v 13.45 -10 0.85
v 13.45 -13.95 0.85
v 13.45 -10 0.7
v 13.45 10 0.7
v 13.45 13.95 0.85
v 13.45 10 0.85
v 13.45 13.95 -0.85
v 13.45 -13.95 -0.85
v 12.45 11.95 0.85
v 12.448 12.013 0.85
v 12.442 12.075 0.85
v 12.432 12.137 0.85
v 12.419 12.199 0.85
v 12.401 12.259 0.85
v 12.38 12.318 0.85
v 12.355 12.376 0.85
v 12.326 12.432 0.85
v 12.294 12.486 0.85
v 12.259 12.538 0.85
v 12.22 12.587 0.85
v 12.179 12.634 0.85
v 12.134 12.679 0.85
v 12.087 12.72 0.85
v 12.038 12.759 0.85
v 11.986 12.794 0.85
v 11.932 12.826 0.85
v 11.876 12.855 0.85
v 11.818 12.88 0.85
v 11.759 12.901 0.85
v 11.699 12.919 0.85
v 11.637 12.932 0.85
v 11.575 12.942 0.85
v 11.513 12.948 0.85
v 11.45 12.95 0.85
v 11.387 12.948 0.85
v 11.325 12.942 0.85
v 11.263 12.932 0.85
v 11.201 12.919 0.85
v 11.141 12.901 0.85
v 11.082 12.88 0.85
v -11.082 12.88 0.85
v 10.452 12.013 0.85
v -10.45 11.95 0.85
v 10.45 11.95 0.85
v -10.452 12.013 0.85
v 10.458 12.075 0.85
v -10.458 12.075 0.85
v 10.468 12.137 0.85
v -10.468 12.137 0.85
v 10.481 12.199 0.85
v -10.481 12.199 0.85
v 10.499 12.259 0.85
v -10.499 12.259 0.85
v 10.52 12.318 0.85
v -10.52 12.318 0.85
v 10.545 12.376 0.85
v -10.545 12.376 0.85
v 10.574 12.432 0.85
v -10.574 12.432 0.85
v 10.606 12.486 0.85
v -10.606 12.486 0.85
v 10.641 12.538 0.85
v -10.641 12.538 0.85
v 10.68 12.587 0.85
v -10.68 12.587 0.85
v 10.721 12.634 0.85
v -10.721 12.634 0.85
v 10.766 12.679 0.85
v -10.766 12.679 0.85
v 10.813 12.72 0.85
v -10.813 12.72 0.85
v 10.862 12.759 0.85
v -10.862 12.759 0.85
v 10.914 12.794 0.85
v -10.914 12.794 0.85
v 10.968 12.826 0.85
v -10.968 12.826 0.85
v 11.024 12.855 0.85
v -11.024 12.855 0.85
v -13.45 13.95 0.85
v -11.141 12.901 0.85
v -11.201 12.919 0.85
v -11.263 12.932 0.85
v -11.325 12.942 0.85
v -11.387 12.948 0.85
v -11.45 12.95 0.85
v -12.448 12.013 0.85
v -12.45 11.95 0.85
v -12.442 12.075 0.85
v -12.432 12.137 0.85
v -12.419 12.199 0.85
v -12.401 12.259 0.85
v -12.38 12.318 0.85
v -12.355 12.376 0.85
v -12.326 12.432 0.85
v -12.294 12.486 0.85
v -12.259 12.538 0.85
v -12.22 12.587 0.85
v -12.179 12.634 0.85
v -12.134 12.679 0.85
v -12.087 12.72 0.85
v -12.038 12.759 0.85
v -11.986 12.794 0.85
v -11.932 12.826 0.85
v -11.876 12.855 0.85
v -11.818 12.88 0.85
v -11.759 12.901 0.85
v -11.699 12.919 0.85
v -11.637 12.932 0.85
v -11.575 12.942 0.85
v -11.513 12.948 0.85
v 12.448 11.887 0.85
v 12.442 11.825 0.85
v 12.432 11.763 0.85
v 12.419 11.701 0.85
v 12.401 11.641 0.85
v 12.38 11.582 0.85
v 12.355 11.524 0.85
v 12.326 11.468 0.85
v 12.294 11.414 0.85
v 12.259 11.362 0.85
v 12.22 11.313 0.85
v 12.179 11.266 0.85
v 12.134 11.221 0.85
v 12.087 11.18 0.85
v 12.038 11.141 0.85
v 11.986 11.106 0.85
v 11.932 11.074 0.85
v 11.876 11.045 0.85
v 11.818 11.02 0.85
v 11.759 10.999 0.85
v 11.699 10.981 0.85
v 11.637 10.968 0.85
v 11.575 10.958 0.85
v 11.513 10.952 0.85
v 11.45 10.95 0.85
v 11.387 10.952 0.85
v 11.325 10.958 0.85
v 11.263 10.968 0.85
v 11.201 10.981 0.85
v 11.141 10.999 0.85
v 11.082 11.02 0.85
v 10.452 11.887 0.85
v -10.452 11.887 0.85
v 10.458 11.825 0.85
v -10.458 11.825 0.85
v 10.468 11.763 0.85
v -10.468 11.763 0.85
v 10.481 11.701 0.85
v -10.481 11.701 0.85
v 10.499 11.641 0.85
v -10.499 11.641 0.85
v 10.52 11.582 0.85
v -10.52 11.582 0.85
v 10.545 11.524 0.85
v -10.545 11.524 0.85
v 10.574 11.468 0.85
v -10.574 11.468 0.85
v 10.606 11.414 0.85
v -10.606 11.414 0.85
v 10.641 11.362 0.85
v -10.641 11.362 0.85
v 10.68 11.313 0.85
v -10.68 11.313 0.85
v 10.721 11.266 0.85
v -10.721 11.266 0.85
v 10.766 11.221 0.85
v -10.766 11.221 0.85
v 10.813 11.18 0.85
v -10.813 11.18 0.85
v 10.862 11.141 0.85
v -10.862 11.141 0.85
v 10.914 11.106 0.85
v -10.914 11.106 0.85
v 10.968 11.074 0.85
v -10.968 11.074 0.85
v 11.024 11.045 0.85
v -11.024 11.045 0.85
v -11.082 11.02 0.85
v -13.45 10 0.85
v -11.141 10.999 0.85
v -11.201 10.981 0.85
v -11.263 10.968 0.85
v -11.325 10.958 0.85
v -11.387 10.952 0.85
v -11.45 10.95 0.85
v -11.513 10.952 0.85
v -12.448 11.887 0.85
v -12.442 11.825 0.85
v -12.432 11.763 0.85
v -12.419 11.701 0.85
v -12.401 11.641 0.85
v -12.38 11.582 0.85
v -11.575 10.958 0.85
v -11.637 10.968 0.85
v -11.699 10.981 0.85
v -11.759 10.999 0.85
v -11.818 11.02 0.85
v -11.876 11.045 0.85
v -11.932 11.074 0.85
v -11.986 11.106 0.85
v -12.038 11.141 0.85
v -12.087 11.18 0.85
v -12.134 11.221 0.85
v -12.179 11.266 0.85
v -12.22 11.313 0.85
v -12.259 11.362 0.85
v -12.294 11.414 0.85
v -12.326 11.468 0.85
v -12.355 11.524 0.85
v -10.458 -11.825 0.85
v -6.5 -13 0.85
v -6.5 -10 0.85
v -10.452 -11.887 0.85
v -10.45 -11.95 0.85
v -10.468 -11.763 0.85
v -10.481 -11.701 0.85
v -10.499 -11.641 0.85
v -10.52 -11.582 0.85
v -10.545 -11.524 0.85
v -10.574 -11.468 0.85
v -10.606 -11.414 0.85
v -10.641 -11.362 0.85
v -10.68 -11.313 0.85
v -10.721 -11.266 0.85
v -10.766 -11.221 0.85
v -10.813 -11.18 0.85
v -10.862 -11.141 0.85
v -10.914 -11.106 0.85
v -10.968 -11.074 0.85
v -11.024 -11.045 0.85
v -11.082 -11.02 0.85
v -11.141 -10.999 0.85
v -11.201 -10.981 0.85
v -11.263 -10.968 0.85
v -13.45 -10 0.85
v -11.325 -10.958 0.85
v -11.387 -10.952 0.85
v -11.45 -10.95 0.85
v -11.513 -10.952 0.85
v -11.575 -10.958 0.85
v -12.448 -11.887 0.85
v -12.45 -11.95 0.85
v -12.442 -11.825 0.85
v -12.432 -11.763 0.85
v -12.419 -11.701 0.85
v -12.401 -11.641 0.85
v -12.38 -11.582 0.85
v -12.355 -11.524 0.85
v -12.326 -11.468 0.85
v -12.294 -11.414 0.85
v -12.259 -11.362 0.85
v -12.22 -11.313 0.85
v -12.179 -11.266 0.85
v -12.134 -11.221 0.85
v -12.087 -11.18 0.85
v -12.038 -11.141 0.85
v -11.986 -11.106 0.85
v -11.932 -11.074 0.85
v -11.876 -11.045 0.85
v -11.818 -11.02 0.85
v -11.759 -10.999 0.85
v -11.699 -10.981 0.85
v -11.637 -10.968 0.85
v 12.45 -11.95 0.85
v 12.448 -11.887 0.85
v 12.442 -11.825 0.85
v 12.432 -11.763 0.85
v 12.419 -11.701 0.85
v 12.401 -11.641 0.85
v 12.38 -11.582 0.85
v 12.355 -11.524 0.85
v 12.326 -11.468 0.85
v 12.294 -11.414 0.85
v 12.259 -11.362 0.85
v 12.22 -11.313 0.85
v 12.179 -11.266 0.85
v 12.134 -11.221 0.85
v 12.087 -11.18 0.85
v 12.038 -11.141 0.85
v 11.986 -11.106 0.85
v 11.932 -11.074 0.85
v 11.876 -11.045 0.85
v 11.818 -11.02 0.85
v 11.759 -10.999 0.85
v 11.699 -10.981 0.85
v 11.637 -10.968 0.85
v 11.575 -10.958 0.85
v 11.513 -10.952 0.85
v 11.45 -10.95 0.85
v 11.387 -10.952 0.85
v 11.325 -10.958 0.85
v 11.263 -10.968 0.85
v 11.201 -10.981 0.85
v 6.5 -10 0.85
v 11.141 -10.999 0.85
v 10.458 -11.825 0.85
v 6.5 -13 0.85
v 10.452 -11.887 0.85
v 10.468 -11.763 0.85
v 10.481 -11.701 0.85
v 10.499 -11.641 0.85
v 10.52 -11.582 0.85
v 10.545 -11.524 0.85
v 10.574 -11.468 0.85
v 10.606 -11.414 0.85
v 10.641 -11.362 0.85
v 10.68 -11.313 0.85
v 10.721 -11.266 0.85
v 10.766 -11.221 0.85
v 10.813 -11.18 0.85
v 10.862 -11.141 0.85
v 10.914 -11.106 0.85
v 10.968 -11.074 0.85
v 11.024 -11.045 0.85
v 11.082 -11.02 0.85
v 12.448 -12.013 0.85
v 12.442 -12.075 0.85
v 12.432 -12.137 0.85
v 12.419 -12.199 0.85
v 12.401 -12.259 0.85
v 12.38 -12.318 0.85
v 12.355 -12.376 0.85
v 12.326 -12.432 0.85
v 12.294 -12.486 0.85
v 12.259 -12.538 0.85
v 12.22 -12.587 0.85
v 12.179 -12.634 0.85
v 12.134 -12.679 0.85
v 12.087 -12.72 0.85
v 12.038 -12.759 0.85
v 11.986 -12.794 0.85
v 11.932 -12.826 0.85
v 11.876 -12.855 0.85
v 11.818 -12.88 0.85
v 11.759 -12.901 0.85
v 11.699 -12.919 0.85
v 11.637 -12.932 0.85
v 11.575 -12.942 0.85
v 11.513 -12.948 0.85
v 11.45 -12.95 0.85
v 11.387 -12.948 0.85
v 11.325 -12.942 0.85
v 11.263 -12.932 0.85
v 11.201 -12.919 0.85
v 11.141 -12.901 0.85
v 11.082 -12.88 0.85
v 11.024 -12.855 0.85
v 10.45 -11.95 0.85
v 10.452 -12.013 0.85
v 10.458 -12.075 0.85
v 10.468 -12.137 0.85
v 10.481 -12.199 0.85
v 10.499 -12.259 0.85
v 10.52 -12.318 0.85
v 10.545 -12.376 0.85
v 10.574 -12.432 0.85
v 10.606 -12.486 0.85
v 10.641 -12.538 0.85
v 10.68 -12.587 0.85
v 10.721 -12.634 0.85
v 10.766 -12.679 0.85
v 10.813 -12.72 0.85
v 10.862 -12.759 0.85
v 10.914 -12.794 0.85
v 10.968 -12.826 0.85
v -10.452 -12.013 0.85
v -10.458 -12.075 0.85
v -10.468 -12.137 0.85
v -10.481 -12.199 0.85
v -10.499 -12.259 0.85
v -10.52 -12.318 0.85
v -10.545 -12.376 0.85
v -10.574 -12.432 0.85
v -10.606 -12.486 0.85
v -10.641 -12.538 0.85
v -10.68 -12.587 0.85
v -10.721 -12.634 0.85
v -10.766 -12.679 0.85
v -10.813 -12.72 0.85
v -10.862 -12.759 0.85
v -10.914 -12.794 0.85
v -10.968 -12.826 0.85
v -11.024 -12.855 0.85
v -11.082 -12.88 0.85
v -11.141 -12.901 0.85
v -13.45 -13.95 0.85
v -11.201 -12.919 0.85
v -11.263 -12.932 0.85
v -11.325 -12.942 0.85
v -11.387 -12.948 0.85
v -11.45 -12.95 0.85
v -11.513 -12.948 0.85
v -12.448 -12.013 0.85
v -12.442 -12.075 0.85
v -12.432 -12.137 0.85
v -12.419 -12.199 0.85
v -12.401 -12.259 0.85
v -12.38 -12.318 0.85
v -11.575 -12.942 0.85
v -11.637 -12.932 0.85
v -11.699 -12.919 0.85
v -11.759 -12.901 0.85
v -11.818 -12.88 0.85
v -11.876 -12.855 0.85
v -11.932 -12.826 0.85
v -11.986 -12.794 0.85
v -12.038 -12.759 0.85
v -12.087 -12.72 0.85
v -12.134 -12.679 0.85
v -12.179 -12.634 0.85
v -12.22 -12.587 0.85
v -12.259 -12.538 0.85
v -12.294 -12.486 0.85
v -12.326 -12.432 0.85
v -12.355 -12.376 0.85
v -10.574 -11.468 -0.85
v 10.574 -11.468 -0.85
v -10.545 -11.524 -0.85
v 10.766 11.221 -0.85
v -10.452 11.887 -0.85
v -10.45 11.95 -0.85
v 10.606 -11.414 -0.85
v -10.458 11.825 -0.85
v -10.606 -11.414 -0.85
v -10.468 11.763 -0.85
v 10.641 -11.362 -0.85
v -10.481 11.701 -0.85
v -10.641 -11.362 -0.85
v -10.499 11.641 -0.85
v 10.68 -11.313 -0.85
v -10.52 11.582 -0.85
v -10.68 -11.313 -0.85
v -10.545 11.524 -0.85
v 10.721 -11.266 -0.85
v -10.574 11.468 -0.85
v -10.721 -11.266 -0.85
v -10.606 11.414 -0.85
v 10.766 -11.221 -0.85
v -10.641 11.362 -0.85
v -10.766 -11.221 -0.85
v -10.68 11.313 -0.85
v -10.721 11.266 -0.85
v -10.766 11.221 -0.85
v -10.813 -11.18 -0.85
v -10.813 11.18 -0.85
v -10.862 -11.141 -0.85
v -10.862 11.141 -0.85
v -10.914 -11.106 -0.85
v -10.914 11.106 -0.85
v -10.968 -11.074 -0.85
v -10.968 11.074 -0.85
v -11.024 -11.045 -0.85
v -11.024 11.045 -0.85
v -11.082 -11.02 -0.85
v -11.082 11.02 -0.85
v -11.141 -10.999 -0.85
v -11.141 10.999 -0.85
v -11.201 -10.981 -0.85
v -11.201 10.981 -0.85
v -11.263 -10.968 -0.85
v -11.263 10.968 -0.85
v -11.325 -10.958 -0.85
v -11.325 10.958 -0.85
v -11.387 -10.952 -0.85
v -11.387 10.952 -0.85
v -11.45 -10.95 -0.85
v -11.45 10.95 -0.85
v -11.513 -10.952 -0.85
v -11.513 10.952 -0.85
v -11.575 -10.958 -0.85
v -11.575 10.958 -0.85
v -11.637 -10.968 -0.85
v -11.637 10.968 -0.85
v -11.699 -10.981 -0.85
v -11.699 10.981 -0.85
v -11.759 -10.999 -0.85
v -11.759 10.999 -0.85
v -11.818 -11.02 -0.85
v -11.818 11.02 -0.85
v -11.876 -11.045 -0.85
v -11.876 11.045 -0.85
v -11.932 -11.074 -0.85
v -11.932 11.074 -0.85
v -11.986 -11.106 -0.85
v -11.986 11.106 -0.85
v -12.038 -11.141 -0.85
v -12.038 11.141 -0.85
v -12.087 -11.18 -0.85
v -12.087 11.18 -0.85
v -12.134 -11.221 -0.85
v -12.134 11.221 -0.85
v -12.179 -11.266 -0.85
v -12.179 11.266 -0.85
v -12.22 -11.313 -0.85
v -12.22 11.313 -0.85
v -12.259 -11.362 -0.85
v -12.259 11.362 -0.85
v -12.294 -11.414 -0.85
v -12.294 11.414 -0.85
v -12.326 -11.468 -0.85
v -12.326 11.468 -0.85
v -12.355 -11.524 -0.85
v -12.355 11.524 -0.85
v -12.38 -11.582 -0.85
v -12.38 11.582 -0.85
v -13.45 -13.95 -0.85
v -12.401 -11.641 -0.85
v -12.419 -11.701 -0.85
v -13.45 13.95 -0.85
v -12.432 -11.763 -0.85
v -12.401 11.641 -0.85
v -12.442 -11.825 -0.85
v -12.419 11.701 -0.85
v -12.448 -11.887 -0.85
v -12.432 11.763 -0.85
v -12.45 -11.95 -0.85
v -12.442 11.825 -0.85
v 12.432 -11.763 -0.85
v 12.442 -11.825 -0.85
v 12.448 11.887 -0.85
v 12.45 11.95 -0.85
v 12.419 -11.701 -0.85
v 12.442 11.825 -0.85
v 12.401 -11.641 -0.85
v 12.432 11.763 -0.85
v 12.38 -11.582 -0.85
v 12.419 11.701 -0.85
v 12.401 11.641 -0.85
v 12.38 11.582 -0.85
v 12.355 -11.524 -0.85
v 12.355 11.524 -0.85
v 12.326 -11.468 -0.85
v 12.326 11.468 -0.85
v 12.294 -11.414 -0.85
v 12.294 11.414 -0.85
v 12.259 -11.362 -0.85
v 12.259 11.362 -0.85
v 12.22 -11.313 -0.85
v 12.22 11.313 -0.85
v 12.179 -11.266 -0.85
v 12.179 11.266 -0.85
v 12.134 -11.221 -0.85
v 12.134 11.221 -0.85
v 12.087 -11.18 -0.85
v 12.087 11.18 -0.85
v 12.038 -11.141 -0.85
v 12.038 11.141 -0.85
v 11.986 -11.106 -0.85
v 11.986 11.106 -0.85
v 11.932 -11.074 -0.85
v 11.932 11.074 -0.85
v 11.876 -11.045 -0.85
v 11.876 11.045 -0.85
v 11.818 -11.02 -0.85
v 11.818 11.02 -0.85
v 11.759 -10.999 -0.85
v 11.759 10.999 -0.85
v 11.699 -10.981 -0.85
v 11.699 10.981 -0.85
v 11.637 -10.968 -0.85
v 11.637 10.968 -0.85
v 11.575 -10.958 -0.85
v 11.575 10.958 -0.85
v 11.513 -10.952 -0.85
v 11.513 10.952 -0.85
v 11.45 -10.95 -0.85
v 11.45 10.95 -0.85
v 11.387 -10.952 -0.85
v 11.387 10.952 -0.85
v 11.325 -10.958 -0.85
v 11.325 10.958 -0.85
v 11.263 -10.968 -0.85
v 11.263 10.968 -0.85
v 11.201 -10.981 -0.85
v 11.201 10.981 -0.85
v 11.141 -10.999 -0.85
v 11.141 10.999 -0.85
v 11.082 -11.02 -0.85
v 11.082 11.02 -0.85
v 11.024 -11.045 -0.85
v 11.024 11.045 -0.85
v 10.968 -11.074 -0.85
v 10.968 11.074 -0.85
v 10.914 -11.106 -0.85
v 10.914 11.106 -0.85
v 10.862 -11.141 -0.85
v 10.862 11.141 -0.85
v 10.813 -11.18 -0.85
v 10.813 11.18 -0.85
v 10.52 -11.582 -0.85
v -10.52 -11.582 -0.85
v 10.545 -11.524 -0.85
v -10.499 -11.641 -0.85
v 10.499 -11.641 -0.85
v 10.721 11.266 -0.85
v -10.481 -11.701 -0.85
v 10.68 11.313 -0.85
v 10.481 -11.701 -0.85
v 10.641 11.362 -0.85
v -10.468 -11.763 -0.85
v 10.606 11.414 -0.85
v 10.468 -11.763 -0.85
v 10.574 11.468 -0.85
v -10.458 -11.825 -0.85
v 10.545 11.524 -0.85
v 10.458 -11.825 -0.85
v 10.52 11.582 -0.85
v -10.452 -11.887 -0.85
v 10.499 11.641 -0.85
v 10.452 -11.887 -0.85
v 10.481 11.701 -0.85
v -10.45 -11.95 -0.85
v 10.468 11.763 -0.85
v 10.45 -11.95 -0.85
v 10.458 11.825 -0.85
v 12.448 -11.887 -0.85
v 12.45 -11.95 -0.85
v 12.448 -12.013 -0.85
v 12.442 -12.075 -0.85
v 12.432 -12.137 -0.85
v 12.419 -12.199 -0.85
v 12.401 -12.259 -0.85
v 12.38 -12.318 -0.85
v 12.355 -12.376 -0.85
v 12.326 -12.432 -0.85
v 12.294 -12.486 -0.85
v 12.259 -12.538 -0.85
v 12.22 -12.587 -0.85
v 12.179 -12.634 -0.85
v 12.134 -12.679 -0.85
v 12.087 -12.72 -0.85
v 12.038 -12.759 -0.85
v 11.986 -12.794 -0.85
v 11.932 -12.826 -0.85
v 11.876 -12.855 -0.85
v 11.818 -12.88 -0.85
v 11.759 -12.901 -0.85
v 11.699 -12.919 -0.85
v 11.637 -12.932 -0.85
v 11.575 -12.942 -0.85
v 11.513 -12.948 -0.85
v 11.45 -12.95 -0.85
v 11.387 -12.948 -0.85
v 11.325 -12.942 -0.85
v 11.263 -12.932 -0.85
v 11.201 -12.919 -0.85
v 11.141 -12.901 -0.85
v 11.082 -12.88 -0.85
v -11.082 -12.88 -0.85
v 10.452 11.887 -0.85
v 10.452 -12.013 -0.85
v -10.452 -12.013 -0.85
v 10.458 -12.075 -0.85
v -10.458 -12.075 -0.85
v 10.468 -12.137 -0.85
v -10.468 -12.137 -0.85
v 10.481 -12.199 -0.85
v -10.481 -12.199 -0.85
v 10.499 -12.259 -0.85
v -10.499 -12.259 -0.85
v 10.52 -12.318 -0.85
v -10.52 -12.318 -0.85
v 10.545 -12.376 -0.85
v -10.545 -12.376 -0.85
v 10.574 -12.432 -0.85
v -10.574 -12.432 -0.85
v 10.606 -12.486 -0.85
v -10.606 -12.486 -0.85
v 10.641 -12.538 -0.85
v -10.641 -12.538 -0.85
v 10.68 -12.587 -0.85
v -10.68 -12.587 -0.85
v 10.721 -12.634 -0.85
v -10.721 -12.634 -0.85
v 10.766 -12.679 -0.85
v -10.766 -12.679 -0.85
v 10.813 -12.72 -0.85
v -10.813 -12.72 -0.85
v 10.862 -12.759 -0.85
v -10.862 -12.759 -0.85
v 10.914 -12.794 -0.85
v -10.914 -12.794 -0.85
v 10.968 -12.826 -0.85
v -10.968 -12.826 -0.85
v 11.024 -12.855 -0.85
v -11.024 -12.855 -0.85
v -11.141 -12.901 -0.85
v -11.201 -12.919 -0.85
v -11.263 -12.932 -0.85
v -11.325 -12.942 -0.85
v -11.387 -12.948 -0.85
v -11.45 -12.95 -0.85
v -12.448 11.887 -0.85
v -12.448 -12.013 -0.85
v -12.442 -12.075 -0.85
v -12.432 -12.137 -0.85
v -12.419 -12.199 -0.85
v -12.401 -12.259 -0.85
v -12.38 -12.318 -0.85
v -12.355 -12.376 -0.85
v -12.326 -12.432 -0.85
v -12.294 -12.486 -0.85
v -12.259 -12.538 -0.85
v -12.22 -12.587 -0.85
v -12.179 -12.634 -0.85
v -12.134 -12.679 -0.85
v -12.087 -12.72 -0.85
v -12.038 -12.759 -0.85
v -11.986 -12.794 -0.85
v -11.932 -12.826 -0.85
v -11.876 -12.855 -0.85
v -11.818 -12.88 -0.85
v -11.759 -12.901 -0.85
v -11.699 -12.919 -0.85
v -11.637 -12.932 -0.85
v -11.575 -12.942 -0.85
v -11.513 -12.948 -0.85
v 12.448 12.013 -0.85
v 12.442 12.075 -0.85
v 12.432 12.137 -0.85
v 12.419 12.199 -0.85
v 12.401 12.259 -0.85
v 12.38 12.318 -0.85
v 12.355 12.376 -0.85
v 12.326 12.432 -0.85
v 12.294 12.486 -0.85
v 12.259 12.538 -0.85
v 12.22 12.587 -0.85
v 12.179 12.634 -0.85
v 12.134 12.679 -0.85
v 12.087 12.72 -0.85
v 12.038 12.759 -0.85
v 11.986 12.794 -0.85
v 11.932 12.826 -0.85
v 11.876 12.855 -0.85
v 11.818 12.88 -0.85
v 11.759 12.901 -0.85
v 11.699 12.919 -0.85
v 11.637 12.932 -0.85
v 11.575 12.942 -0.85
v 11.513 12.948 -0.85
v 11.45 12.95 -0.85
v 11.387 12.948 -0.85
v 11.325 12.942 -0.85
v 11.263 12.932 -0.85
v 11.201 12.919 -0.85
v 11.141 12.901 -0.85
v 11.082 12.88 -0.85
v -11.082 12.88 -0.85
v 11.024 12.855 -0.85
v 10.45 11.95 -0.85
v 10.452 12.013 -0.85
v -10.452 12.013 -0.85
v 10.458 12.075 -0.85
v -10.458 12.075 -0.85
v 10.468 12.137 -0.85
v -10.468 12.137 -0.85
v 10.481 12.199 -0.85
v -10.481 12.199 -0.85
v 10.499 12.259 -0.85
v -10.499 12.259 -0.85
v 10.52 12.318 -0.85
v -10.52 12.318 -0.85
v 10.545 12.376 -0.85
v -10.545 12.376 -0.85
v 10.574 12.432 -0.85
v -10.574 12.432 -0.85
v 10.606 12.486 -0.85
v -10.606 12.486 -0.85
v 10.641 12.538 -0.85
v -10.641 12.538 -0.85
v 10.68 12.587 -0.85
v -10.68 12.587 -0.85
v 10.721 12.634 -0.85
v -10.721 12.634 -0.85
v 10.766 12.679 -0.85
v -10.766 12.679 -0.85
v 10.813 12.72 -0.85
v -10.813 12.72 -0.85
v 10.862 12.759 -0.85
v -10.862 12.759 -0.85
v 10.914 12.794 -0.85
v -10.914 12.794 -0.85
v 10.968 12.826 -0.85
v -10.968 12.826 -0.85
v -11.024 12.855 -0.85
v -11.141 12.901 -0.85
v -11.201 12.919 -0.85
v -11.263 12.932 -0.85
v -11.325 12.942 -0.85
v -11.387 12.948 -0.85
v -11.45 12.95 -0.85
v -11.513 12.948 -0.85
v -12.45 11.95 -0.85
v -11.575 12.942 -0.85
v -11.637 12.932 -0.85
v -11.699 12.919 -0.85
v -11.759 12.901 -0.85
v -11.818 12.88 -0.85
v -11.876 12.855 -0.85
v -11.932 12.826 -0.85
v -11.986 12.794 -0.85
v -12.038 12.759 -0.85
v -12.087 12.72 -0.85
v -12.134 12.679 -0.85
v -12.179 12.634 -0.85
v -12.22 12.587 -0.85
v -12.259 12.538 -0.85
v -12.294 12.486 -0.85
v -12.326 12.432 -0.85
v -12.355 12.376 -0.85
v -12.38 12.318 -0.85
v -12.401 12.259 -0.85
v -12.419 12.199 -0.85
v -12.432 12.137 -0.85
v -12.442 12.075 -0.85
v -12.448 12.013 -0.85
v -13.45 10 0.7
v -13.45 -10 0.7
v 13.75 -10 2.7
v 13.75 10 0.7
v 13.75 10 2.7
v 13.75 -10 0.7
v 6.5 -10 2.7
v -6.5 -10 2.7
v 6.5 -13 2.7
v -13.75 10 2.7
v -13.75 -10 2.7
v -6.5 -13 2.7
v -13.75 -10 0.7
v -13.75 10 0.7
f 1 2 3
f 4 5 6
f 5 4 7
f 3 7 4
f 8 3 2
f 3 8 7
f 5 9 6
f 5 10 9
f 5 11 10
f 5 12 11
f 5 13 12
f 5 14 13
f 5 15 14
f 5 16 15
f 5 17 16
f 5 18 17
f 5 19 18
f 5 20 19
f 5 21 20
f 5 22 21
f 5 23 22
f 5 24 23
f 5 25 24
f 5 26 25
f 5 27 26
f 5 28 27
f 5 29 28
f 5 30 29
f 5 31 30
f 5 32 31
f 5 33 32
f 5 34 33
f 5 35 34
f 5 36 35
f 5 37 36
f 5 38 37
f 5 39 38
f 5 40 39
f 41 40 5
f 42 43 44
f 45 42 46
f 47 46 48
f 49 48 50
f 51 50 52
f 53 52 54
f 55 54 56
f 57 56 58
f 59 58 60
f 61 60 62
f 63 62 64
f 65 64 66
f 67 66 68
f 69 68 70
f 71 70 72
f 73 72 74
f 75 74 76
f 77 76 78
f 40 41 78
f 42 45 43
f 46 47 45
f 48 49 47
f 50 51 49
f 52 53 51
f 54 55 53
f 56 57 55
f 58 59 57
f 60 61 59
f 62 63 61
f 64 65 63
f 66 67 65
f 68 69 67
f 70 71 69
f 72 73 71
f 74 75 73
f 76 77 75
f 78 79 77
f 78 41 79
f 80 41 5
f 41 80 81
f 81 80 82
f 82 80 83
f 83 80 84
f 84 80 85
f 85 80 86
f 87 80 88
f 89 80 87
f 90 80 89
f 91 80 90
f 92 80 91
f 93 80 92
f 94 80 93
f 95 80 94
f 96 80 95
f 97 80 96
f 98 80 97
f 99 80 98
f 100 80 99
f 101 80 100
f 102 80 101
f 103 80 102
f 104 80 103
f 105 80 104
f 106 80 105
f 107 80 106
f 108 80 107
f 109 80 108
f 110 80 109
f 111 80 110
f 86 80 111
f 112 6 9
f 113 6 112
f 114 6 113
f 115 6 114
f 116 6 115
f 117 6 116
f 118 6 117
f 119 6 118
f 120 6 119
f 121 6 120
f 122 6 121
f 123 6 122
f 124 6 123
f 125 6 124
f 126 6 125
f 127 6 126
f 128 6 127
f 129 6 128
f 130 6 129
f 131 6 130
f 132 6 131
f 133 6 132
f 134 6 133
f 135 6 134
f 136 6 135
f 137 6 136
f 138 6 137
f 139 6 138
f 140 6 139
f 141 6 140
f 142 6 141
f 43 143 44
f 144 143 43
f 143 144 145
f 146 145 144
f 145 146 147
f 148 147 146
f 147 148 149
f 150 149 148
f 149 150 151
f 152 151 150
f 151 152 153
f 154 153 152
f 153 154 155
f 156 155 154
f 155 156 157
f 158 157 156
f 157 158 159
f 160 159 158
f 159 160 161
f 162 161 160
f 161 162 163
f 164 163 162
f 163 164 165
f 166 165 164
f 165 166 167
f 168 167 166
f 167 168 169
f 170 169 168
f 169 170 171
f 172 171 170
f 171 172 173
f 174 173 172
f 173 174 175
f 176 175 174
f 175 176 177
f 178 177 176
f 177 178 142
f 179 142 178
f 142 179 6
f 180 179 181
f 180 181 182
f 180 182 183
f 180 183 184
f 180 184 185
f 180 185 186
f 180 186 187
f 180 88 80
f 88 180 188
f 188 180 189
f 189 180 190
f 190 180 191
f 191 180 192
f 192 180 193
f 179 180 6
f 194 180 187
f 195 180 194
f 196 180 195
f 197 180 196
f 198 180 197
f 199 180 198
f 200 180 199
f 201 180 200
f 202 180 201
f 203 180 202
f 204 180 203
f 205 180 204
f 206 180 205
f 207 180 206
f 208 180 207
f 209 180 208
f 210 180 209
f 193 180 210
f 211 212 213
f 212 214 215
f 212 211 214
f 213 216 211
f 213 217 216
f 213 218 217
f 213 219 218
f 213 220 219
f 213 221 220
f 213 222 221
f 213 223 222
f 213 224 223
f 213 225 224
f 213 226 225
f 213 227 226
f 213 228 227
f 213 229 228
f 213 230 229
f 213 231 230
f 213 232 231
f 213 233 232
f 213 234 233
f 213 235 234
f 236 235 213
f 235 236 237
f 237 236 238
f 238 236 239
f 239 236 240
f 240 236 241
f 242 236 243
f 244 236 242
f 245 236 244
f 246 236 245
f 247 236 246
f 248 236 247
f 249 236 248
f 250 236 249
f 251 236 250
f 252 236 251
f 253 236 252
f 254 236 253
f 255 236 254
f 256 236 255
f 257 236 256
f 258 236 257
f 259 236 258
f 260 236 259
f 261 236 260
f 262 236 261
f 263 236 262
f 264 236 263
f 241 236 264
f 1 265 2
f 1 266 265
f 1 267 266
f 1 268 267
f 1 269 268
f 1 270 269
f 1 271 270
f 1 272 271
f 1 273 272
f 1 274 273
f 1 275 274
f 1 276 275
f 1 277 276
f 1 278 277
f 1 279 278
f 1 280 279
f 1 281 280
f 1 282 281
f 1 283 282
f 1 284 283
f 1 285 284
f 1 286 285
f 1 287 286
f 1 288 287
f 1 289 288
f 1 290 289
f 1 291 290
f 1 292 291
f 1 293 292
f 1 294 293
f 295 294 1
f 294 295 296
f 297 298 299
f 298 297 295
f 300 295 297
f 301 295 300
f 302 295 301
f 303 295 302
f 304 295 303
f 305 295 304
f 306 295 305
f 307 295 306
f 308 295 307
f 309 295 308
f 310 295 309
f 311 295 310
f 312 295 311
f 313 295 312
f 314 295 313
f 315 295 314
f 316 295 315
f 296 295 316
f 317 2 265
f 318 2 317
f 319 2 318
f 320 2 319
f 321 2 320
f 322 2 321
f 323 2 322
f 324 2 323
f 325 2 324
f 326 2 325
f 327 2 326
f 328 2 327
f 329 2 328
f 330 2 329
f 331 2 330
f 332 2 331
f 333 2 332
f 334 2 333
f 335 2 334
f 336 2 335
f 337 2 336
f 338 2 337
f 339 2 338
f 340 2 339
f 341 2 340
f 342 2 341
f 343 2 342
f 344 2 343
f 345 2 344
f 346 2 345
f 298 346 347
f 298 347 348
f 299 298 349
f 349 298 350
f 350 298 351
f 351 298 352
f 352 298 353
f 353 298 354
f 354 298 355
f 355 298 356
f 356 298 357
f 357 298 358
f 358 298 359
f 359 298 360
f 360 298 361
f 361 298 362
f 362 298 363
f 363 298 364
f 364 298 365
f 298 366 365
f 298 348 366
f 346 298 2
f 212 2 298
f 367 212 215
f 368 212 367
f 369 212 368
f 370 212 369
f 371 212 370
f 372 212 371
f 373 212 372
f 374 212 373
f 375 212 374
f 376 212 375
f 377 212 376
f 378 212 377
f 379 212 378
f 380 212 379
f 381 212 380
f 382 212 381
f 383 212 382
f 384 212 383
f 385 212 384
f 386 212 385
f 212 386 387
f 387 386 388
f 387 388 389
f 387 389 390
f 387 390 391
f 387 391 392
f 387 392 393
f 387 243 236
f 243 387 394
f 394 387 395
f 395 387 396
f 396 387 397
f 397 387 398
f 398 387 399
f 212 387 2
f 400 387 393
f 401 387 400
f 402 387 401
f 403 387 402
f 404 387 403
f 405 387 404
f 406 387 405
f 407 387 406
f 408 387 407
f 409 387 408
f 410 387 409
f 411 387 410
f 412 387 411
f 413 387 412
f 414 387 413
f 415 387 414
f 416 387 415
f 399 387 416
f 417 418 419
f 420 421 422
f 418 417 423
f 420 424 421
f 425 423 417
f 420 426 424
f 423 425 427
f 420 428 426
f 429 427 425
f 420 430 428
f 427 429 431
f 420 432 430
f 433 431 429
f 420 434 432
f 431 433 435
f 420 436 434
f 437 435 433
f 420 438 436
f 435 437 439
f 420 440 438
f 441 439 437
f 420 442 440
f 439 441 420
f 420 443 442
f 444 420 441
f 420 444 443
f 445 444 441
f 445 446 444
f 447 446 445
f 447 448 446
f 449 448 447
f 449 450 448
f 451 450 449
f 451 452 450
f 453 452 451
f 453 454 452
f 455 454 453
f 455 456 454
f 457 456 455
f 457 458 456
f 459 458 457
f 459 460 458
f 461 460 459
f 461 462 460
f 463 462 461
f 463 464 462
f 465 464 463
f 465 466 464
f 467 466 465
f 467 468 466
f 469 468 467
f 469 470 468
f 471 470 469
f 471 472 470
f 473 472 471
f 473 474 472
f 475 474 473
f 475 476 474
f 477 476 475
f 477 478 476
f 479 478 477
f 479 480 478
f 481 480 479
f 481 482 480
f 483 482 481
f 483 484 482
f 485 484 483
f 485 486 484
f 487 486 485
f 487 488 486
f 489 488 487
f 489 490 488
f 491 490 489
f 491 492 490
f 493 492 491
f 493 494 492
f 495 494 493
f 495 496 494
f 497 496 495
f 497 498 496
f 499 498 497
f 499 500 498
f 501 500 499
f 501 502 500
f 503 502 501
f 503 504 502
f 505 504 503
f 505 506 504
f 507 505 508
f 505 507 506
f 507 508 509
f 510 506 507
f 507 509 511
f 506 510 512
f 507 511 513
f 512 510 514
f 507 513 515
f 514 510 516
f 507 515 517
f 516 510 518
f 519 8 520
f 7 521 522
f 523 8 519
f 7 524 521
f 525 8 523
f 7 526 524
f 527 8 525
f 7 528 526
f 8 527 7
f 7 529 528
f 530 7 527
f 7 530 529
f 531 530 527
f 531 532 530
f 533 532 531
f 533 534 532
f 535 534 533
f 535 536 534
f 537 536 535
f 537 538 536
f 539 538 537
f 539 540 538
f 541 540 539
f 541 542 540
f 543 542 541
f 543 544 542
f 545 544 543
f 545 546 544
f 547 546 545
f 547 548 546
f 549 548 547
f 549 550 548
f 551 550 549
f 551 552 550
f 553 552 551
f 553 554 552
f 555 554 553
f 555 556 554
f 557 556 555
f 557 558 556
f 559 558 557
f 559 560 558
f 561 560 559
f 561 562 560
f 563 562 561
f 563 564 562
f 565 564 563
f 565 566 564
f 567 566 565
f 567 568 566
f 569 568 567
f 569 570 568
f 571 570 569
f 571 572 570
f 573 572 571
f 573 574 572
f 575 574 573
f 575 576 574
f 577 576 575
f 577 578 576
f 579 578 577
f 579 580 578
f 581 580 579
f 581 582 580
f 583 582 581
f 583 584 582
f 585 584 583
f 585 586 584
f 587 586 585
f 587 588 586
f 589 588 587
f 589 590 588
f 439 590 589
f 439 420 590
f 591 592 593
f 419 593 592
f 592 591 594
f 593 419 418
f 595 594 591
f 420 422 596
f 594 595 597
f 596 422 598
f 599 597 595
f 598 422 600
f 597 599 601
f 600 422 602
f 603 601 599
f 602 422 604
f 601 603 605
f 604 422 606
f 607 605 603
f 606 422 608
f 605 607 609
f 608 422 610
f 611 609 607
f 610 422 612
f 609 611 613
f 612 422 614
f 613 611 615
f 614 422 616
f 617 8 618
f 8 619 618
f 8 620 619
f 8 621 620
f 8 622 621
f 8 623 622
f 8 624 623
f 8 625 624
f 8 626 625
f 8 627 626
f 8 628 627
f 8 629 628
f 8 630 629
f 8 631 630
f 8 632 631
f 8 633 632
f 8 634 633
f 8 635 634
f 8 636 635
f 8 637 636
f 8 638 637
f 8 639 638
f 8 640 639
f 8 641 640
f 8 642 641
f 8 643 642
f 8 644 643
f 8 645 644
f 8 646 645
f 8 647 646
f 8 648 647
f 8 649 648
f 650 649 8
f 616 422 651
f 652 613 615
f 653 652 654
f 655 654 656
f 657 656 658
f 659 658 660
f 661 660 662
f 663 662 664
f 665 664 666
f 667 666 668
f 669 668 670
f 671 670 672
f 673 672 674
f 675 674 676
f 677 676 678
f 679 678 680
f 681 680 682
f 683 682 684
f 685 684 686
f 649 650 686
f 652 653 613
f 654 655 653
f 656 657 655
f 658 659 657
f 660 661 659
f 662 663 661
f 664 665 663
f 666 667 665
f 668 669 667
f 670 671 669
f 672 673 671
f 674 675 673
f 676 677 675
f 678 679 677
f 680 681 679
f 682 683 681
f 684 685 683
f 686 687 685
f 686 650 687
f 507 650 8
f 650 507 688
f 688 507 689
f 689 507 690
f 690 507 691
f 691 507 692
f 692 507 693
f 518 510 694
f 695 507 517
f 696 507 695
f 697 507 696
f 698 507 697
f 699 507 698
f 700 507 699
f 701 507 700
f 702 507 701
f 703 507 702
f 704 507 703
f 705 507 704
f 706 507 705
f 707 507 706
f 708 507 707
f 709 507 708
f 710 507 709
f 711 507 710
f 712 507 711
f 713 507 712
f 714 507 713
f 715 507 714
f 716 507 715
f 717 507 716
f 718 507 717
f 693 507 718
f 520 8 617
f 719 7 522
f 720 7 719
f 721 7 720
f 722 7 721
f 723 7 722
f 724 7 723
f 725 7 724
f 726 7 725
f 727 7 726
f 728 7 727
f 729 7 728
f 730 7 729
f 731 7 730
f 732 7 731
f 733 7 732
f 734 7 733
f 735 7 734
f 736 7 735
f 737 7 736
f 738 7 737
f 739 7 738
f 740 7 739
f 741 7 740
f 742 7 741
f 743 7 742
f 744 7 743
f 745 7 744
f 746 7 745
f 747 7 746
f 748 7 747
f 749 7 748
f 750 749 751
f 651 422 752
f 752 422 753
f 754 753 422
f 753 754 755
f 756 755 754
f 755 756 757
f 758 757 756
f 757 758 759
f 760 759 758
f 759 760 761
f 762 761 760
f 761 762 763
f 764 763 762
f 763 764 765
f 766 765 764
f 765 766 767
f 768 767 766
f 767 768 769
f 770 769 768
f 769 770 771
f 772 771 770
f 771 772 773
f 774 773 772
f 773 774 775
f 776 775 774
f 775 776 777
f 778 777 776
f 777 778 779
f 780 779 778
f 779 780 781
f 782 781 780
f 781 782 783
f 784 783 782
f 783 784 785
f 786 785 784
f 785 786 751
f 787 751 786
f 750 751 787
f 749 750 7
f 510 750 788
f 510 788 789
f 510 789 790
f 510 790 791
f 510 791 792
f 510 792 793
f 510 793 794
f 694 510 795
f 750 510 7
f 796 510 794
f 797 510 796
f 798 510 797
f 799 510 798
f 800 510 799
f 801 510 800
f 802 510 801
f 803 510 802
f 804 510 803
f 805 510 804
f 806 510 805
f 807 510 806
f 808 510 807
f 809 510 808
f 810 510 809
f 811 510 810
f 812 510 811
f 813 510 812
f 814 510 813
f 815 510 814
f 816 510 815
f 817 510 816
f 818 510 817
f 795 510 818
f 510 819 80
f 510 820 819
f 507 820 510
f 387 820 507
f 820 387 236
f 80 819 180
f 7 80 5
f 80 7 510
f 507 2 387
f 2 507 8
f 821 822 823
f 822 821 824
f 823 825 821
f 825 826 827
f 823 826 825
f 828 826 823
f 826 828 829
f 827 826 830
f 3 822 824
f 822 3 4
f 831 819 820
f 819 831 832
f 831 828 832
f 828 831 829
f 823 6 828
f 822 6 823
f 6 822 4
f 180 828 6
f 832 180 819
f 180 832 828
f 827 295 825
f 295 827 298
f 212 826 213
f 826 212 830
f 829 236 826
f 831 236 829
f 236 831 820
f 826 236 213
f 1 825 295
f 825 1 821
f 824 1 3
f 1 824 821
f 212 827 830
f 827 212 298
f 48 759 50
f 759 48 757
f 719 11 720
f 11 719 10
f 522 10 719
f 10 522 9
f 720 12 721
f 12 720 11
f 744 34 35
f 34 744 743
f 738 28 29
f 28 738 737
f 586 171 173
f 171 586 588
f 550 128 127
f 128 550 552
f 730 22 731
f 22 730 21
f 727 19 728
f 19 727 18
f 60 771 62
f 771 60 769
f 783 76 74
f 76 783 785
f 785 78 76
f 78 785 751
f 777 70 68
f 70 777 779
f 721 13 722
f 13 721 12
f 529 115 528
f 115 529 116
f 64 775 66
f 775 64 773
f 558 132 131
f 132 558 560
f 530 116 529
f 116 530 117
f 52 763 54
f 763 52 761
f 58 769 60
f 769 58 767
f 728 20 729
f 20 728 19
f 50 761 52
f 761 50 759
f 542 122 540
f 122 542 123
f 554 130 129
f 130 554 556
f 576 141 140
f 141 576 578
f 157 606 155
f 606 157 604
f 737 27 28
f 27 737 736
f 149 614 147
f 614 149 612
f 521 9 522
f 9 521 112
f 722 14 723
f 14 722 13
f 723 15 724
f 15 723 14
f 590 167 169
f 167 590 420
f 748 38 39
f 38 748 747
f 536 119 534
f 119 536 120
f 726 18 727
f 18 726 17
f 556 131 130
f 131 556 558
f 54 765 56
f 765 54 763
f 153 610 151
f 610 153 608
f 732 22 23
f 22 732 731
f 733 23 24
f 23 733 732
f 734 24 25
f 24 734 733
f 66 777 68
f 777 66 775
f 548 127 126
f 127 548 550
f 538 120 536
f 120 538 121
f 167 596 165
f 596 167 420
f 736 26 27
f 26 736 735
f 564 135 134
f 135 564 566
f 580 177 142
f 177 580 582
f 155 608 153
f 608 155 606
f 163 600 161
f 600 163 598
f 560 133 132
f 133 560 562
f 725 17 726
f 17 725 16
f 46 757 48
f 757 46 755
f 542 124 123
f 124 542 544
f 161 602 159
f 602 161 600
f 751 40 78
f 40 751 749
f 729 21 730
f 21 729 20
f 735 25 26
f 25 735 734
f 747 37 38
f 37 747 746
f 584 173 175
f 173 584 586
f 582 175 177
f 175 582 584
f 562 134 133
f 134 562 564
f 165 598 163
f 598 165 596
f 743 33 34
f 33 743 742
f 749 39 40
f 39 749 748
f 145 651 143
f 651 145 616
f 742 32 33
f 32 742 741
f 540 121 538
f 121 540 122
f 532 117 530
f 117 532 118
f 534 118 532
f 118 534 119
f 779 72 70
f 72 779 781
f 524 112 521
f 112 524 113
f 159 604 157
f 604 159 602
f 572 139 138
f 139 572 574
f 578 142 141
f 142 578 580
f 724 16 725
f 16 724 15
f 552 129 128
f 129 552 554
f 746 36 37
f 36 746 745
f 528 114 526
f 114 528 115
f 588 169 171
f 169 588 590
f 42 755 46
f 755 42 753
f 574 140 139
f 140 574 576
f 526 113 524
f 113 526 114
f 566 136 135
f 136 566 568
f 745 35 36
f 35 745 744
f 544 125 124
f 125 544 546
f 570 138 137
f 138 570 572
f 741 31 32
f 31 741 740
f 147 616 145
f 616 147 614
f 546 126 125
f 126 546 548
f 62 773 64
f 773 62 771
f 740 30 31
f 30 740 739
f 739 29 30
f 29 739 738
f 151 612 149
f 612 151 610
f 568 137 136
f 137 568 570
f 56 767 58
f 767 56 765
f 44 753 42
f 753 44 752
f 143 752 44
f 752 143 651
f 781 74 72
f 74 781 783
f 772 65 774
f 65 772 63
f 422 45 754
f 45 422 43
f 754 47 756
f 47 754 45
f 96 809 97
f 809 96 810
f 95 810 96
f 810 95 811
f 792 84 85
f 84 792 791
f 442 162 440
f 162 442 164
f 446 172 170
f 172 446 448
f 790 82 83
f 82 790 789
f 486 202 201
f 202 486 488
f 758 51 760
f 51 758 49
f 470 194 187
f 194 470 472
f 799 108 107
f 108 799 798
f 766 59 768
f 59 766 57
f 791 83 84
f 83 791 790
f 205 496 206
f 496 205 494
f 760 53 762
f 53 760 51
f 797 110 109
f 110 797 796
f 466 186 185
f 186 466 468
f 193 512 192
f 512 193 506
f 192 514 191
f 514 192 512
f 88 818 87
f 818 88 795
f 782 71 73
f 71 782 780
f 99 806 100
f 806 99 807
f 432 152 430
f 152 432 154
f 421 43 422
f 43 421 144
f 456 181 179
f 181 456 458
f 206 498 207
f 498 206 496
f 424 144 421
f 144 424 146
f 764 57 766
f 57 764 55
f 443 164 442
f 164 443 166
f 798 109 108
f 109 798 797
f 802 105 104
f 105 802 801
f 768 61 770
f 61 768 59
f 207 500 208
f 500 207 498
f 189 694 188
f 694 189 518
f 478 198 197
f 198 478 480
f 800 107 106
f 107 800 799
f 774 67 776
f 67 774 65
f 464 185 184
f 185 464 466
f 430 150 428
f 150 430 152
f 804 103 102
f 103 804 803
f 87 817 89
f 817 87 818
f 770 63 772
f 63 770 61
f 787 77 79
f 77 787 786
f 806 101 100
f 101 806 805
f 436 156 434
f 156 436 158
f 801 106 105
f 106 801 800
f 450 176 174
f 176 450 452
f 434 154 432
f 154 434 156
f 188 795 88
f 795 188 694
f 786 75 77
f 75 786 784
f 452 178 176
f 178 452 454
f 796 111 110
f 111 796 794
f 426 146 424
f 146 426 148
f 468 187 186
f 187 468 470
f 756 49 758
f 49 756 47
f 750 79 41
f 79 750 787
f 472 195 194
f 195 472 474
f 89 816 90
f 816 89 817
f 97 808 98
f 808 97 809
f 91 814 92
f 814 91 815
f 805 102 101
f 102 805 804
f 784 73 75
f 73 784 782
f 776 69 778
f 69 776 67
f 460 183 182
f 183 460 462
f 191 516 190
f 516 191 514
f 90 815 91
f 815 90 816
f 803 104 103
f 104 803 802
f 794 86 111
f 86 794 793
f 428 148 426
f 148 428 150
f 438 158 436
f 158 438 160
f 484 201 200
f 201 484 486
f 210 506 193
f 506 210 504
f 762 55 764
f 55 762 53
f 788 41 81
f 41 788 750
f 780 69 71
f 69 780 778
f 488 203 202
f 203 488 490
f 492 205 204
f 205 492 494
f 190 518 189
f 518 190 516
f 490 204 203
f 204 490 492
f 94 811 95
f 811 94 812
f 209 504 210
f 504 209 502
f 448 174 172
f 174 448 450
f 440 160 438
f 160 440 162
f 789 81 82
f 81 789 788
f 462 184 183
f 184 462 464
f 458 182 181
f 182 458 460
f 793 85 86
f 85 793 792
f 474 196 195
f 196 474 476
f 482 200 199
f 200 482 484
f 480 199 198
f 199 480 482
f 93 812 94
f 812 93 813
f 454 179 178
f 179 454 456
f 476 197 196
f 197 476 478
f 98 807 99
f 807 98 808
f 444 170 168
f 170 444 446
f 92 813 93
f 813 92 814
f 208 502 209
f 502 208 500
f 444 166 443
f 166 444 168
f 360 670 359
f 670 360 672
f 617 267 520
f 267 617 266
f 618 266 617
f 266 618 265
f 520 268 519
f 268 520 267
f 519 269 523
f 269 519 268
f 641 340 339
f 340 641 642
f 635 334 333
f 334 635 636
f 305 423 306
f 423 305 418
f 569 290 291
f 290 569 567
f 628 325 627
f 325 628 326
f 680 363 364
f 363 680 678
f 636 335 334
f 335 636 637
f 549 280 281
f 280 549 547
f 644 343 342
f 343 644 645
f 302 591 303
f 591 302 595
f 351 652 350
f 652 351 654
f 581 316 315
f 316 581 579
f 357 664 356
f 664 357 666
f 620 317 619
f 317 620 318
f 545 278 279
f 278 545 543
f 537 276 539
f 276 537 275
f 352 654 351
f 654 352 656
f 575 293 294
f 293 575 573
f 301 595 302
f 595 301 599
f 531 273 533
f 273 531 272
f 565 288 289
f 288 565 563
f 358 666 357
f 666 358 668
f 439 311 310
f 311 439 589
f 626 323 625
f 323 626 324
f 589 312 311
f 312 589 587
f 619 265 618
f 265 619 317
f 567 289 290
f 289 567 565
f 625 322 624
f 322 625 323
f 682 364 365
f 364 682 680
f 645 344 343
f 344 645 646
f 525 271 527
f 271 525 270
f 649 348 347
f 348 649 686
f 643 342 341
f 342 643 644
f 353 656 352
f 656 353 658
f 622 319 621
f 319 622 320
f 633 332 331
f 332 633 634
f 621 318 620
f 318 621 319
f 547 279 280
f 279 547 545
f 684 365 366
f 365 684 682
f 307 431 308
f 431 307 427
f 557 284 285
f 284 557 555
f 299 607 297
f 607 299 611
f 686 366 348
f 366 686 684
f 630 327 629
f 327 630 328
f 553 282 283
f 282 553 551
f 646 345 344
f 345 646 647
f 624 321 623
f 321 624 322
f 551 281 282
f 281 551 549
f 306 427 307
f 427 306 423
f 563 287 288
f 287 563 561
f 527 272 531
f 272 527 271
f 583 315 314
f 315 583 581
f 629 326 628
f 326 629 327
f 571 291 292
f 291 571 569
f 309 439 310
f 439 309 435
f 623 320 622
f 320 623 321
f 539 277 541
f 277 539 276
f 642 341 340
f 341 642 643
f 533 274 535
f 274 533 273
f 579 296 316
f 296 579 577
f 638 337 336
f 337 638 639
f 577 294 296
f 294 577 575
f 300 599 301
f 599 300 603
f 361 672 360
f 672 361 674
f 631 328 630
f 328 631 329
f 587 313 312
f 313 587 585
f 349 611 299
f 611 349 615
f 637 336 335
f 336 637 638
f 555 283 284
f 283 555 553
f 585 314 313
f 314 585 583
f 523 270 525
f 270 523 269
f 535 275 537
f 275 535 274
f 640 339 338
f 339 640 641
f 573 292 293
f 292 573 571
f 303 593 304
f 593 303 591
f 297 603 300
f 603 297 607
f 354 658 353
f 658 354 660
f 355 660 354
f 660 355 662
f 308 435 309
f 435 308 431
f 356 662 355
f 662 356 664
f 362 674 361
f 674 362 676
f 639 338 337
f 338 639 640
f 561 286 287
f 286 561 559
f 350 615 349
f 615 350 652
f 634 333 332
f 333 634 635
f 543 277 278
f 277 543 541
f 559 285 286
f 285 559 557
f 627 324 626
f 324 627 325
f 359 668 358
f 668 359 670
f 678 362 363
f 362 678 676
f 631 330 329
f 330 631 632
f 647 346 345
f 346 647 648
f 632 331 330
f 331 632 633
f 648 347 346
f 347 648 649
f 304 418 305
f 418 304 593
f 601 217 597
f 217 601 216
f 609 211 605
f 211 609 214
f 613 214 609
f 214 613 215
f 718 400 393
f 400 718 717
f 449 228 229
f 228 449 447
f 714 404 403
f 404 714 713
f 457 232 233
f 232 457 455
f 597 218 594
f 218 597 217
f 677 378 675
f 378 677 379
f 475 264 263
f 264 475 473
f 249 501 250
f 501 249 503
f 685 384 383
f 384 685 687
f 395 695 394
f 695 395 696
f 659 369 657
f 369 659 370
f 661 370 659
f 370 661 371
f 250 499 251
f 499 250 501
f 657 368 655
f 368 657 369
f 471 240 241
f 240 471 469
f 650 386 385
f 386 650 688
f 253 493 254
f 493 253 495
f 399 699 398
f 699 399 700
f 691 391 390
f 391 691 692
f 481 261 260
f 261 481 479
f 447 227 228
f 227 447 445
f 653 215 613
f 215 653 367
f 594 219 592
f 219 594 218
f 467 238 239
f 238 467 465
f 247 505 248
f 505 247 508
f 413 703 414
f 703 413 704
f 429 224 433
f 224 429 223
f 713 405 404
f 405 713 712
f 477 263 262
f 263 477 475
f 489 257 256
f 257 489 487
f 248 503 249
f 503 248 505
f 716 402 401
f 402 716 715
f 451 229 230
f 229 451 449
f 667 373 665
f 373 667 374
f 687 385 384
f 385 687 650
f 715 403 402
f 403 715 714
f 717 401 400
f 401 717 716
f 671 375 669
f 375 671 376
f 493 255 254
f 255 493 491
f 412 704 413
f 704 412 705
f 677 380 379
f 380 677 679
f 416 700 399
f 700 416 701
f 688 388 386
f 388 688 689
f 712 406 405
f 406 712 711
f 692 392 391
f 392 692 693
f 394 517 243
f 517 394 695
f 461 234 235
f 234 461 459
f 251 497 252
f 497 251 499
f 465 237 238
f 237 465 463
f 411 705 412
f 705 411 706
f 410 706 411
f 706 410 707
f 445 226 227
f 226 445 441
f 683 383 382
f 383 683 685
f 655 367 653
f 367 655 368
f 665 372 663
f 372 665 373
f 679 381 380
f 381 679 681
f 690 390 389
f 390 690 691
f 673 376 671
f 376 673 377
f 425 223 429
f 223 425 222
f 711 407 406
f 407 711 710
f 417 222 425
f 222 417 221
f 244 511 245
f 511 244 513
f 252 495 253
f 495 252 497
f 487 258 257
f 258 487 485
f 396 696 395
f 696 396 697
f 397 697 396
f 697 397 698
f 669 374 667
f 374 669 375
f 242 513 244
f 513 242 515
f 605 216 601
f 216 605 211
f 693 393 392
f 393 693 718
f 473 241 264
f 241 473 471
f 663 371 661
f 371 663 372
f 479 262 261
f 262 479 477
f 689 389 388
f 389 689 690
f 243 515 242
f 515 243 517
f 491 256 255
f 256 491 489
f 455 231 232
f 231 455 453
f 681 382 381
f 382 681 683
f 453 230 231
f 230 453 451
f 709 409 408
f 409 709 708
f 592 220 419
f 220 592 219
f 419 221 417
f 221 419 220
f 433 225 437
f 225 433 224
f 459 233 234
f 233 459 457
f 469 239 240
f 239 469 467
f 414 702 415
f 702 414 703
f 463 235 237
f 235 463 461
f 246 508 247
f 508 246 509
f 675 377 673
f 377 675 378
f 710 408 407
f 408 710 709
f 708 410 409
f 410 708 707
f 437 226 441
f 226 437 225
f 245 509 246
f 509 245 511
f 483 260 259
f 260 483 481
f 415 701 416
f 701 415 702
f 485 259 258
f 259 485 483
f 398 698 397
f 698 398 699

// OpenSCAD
// mental gymnastics for centered and parametric 3d object

$fn=100;

//Variable for subtractions so as to be slightly above borders
diffWiggle = .2;

//PCB dimensions
PCB1306holeD = 2;
PCB1306holeOff = [2,2,0] ;
    PCB1306Z = 1.7 ;
    PCB1306X = 26.9 ;
    PCB1306Y = 27.9 ;
PCB1306 = [PCB1306X, PCB1306Y, PCB1306Z] ;
//1306 Top components
    LCDmaskY = 4; //how much to cover up at the bottom
    LCDX = 27.5 ; // left to right
    LCDY = 20 ; // topR to bottomR
    LCDZ = 2 ; // height from PCB
    LCDflexX = 13 ; //flex cable width
    LCDflexY = 3 ; //flex cable length from LCD to edge
LCD = [LCDX, LCDY, LCDZ] ;
LCDpos = [0, 0, PCB1306.z] ; //sits on top of the PCB and is centered
LCDviewPos = [0, LCDmaskY/2, PCB1306.z] ; //on top of the PCB above the masked part
LCDmask = [LCD.x, LCDmaskY, LCD.z] ; // is part of the LCD so shares X and Z
LCDmaskPos = [0, -LCD.y/2 +LCDmask.y/2, LCDpos.z] ; // sits below the viewport of the LCD
LCDview = [LCD.x, LCD.y - LCDmask.y, LCD.z]; // is part of the LCD just without the masked part
LCDflex = [LCDflexX, LCDflexY, LCD.z] ; //is considered as high as the LCD
LCDflexPos = [0, -LCD.y/2 -LCDflex.y/2, PCB1306.z] ; //sits bellow the LCD
//1306 bottom clearance items

//array - put the parts together
extrudeFalse = false ; extrudeTrue = true ;
object = [
    [PCB1306, [0, 0, 0], "green", extrudeFalse],
    [LCDview, LCDviewPos, "black", extrudeTrue],
    [LCDflex, LCDflexPos, "brown", extrudeTrue],
    [LCDmask, LCDmaskPos, "grey", extrudeTrue]
];
 
module pegs(XYZ,offset,holeD) {
    //mounting holes - no need to zdiff as centered
    //relative positions
        H = XYZ.z ;
        XY = [XYZ.x, XYZ.y, 0] ;
        TR= [ [+1, 0, 0], [0, +1, 0], [0, 0, 0] ];
        TL= [ [-1, 0, 0], [0, +1, 0], [0, 0, 0] ];
        BR= [ [+1, 0, 0], [0, -1, 0], [0, 0, 0] ];
        BL= [ [-1, 0, 0], [0, -1, 0], [0, 0, 0] ];
        // move to TR then move back towards BL by offset etc 
        posTR = (TR * XY/2) + (offset * BL) ;
        posTL = (TL * XY/2) + (offset * BR) ;
        posBR = (BR * XY/2) + (offset * TL) ;
        posBL = (BL * XY/2) + (offset * TR) ;
    translate (posTR) cylinder(h = H, d = holeD, center = true);
    translate (posTL) cylinder(h = H, d = holeD, center = true);
    translate (posBR) cylinder(h = H, d = holeD, center = true);
    translate (posBL) cylinder(h = H, d = holeD, center = true);
}

module brickLayer(array) {
    module blocks(list) {
        translate (list[1]) color(list[2]) cube(list[0], center=true);
    }
    for ( i = [0 : len(array) - 1] ) { blocks(array[i]); }
}
//OUTPUT
difference(){
    brickLayer(object);
    pegs(PCB1306 + [0, 0, diffWiggle], PCB1306holeOff, PCB1306holeD);
}
